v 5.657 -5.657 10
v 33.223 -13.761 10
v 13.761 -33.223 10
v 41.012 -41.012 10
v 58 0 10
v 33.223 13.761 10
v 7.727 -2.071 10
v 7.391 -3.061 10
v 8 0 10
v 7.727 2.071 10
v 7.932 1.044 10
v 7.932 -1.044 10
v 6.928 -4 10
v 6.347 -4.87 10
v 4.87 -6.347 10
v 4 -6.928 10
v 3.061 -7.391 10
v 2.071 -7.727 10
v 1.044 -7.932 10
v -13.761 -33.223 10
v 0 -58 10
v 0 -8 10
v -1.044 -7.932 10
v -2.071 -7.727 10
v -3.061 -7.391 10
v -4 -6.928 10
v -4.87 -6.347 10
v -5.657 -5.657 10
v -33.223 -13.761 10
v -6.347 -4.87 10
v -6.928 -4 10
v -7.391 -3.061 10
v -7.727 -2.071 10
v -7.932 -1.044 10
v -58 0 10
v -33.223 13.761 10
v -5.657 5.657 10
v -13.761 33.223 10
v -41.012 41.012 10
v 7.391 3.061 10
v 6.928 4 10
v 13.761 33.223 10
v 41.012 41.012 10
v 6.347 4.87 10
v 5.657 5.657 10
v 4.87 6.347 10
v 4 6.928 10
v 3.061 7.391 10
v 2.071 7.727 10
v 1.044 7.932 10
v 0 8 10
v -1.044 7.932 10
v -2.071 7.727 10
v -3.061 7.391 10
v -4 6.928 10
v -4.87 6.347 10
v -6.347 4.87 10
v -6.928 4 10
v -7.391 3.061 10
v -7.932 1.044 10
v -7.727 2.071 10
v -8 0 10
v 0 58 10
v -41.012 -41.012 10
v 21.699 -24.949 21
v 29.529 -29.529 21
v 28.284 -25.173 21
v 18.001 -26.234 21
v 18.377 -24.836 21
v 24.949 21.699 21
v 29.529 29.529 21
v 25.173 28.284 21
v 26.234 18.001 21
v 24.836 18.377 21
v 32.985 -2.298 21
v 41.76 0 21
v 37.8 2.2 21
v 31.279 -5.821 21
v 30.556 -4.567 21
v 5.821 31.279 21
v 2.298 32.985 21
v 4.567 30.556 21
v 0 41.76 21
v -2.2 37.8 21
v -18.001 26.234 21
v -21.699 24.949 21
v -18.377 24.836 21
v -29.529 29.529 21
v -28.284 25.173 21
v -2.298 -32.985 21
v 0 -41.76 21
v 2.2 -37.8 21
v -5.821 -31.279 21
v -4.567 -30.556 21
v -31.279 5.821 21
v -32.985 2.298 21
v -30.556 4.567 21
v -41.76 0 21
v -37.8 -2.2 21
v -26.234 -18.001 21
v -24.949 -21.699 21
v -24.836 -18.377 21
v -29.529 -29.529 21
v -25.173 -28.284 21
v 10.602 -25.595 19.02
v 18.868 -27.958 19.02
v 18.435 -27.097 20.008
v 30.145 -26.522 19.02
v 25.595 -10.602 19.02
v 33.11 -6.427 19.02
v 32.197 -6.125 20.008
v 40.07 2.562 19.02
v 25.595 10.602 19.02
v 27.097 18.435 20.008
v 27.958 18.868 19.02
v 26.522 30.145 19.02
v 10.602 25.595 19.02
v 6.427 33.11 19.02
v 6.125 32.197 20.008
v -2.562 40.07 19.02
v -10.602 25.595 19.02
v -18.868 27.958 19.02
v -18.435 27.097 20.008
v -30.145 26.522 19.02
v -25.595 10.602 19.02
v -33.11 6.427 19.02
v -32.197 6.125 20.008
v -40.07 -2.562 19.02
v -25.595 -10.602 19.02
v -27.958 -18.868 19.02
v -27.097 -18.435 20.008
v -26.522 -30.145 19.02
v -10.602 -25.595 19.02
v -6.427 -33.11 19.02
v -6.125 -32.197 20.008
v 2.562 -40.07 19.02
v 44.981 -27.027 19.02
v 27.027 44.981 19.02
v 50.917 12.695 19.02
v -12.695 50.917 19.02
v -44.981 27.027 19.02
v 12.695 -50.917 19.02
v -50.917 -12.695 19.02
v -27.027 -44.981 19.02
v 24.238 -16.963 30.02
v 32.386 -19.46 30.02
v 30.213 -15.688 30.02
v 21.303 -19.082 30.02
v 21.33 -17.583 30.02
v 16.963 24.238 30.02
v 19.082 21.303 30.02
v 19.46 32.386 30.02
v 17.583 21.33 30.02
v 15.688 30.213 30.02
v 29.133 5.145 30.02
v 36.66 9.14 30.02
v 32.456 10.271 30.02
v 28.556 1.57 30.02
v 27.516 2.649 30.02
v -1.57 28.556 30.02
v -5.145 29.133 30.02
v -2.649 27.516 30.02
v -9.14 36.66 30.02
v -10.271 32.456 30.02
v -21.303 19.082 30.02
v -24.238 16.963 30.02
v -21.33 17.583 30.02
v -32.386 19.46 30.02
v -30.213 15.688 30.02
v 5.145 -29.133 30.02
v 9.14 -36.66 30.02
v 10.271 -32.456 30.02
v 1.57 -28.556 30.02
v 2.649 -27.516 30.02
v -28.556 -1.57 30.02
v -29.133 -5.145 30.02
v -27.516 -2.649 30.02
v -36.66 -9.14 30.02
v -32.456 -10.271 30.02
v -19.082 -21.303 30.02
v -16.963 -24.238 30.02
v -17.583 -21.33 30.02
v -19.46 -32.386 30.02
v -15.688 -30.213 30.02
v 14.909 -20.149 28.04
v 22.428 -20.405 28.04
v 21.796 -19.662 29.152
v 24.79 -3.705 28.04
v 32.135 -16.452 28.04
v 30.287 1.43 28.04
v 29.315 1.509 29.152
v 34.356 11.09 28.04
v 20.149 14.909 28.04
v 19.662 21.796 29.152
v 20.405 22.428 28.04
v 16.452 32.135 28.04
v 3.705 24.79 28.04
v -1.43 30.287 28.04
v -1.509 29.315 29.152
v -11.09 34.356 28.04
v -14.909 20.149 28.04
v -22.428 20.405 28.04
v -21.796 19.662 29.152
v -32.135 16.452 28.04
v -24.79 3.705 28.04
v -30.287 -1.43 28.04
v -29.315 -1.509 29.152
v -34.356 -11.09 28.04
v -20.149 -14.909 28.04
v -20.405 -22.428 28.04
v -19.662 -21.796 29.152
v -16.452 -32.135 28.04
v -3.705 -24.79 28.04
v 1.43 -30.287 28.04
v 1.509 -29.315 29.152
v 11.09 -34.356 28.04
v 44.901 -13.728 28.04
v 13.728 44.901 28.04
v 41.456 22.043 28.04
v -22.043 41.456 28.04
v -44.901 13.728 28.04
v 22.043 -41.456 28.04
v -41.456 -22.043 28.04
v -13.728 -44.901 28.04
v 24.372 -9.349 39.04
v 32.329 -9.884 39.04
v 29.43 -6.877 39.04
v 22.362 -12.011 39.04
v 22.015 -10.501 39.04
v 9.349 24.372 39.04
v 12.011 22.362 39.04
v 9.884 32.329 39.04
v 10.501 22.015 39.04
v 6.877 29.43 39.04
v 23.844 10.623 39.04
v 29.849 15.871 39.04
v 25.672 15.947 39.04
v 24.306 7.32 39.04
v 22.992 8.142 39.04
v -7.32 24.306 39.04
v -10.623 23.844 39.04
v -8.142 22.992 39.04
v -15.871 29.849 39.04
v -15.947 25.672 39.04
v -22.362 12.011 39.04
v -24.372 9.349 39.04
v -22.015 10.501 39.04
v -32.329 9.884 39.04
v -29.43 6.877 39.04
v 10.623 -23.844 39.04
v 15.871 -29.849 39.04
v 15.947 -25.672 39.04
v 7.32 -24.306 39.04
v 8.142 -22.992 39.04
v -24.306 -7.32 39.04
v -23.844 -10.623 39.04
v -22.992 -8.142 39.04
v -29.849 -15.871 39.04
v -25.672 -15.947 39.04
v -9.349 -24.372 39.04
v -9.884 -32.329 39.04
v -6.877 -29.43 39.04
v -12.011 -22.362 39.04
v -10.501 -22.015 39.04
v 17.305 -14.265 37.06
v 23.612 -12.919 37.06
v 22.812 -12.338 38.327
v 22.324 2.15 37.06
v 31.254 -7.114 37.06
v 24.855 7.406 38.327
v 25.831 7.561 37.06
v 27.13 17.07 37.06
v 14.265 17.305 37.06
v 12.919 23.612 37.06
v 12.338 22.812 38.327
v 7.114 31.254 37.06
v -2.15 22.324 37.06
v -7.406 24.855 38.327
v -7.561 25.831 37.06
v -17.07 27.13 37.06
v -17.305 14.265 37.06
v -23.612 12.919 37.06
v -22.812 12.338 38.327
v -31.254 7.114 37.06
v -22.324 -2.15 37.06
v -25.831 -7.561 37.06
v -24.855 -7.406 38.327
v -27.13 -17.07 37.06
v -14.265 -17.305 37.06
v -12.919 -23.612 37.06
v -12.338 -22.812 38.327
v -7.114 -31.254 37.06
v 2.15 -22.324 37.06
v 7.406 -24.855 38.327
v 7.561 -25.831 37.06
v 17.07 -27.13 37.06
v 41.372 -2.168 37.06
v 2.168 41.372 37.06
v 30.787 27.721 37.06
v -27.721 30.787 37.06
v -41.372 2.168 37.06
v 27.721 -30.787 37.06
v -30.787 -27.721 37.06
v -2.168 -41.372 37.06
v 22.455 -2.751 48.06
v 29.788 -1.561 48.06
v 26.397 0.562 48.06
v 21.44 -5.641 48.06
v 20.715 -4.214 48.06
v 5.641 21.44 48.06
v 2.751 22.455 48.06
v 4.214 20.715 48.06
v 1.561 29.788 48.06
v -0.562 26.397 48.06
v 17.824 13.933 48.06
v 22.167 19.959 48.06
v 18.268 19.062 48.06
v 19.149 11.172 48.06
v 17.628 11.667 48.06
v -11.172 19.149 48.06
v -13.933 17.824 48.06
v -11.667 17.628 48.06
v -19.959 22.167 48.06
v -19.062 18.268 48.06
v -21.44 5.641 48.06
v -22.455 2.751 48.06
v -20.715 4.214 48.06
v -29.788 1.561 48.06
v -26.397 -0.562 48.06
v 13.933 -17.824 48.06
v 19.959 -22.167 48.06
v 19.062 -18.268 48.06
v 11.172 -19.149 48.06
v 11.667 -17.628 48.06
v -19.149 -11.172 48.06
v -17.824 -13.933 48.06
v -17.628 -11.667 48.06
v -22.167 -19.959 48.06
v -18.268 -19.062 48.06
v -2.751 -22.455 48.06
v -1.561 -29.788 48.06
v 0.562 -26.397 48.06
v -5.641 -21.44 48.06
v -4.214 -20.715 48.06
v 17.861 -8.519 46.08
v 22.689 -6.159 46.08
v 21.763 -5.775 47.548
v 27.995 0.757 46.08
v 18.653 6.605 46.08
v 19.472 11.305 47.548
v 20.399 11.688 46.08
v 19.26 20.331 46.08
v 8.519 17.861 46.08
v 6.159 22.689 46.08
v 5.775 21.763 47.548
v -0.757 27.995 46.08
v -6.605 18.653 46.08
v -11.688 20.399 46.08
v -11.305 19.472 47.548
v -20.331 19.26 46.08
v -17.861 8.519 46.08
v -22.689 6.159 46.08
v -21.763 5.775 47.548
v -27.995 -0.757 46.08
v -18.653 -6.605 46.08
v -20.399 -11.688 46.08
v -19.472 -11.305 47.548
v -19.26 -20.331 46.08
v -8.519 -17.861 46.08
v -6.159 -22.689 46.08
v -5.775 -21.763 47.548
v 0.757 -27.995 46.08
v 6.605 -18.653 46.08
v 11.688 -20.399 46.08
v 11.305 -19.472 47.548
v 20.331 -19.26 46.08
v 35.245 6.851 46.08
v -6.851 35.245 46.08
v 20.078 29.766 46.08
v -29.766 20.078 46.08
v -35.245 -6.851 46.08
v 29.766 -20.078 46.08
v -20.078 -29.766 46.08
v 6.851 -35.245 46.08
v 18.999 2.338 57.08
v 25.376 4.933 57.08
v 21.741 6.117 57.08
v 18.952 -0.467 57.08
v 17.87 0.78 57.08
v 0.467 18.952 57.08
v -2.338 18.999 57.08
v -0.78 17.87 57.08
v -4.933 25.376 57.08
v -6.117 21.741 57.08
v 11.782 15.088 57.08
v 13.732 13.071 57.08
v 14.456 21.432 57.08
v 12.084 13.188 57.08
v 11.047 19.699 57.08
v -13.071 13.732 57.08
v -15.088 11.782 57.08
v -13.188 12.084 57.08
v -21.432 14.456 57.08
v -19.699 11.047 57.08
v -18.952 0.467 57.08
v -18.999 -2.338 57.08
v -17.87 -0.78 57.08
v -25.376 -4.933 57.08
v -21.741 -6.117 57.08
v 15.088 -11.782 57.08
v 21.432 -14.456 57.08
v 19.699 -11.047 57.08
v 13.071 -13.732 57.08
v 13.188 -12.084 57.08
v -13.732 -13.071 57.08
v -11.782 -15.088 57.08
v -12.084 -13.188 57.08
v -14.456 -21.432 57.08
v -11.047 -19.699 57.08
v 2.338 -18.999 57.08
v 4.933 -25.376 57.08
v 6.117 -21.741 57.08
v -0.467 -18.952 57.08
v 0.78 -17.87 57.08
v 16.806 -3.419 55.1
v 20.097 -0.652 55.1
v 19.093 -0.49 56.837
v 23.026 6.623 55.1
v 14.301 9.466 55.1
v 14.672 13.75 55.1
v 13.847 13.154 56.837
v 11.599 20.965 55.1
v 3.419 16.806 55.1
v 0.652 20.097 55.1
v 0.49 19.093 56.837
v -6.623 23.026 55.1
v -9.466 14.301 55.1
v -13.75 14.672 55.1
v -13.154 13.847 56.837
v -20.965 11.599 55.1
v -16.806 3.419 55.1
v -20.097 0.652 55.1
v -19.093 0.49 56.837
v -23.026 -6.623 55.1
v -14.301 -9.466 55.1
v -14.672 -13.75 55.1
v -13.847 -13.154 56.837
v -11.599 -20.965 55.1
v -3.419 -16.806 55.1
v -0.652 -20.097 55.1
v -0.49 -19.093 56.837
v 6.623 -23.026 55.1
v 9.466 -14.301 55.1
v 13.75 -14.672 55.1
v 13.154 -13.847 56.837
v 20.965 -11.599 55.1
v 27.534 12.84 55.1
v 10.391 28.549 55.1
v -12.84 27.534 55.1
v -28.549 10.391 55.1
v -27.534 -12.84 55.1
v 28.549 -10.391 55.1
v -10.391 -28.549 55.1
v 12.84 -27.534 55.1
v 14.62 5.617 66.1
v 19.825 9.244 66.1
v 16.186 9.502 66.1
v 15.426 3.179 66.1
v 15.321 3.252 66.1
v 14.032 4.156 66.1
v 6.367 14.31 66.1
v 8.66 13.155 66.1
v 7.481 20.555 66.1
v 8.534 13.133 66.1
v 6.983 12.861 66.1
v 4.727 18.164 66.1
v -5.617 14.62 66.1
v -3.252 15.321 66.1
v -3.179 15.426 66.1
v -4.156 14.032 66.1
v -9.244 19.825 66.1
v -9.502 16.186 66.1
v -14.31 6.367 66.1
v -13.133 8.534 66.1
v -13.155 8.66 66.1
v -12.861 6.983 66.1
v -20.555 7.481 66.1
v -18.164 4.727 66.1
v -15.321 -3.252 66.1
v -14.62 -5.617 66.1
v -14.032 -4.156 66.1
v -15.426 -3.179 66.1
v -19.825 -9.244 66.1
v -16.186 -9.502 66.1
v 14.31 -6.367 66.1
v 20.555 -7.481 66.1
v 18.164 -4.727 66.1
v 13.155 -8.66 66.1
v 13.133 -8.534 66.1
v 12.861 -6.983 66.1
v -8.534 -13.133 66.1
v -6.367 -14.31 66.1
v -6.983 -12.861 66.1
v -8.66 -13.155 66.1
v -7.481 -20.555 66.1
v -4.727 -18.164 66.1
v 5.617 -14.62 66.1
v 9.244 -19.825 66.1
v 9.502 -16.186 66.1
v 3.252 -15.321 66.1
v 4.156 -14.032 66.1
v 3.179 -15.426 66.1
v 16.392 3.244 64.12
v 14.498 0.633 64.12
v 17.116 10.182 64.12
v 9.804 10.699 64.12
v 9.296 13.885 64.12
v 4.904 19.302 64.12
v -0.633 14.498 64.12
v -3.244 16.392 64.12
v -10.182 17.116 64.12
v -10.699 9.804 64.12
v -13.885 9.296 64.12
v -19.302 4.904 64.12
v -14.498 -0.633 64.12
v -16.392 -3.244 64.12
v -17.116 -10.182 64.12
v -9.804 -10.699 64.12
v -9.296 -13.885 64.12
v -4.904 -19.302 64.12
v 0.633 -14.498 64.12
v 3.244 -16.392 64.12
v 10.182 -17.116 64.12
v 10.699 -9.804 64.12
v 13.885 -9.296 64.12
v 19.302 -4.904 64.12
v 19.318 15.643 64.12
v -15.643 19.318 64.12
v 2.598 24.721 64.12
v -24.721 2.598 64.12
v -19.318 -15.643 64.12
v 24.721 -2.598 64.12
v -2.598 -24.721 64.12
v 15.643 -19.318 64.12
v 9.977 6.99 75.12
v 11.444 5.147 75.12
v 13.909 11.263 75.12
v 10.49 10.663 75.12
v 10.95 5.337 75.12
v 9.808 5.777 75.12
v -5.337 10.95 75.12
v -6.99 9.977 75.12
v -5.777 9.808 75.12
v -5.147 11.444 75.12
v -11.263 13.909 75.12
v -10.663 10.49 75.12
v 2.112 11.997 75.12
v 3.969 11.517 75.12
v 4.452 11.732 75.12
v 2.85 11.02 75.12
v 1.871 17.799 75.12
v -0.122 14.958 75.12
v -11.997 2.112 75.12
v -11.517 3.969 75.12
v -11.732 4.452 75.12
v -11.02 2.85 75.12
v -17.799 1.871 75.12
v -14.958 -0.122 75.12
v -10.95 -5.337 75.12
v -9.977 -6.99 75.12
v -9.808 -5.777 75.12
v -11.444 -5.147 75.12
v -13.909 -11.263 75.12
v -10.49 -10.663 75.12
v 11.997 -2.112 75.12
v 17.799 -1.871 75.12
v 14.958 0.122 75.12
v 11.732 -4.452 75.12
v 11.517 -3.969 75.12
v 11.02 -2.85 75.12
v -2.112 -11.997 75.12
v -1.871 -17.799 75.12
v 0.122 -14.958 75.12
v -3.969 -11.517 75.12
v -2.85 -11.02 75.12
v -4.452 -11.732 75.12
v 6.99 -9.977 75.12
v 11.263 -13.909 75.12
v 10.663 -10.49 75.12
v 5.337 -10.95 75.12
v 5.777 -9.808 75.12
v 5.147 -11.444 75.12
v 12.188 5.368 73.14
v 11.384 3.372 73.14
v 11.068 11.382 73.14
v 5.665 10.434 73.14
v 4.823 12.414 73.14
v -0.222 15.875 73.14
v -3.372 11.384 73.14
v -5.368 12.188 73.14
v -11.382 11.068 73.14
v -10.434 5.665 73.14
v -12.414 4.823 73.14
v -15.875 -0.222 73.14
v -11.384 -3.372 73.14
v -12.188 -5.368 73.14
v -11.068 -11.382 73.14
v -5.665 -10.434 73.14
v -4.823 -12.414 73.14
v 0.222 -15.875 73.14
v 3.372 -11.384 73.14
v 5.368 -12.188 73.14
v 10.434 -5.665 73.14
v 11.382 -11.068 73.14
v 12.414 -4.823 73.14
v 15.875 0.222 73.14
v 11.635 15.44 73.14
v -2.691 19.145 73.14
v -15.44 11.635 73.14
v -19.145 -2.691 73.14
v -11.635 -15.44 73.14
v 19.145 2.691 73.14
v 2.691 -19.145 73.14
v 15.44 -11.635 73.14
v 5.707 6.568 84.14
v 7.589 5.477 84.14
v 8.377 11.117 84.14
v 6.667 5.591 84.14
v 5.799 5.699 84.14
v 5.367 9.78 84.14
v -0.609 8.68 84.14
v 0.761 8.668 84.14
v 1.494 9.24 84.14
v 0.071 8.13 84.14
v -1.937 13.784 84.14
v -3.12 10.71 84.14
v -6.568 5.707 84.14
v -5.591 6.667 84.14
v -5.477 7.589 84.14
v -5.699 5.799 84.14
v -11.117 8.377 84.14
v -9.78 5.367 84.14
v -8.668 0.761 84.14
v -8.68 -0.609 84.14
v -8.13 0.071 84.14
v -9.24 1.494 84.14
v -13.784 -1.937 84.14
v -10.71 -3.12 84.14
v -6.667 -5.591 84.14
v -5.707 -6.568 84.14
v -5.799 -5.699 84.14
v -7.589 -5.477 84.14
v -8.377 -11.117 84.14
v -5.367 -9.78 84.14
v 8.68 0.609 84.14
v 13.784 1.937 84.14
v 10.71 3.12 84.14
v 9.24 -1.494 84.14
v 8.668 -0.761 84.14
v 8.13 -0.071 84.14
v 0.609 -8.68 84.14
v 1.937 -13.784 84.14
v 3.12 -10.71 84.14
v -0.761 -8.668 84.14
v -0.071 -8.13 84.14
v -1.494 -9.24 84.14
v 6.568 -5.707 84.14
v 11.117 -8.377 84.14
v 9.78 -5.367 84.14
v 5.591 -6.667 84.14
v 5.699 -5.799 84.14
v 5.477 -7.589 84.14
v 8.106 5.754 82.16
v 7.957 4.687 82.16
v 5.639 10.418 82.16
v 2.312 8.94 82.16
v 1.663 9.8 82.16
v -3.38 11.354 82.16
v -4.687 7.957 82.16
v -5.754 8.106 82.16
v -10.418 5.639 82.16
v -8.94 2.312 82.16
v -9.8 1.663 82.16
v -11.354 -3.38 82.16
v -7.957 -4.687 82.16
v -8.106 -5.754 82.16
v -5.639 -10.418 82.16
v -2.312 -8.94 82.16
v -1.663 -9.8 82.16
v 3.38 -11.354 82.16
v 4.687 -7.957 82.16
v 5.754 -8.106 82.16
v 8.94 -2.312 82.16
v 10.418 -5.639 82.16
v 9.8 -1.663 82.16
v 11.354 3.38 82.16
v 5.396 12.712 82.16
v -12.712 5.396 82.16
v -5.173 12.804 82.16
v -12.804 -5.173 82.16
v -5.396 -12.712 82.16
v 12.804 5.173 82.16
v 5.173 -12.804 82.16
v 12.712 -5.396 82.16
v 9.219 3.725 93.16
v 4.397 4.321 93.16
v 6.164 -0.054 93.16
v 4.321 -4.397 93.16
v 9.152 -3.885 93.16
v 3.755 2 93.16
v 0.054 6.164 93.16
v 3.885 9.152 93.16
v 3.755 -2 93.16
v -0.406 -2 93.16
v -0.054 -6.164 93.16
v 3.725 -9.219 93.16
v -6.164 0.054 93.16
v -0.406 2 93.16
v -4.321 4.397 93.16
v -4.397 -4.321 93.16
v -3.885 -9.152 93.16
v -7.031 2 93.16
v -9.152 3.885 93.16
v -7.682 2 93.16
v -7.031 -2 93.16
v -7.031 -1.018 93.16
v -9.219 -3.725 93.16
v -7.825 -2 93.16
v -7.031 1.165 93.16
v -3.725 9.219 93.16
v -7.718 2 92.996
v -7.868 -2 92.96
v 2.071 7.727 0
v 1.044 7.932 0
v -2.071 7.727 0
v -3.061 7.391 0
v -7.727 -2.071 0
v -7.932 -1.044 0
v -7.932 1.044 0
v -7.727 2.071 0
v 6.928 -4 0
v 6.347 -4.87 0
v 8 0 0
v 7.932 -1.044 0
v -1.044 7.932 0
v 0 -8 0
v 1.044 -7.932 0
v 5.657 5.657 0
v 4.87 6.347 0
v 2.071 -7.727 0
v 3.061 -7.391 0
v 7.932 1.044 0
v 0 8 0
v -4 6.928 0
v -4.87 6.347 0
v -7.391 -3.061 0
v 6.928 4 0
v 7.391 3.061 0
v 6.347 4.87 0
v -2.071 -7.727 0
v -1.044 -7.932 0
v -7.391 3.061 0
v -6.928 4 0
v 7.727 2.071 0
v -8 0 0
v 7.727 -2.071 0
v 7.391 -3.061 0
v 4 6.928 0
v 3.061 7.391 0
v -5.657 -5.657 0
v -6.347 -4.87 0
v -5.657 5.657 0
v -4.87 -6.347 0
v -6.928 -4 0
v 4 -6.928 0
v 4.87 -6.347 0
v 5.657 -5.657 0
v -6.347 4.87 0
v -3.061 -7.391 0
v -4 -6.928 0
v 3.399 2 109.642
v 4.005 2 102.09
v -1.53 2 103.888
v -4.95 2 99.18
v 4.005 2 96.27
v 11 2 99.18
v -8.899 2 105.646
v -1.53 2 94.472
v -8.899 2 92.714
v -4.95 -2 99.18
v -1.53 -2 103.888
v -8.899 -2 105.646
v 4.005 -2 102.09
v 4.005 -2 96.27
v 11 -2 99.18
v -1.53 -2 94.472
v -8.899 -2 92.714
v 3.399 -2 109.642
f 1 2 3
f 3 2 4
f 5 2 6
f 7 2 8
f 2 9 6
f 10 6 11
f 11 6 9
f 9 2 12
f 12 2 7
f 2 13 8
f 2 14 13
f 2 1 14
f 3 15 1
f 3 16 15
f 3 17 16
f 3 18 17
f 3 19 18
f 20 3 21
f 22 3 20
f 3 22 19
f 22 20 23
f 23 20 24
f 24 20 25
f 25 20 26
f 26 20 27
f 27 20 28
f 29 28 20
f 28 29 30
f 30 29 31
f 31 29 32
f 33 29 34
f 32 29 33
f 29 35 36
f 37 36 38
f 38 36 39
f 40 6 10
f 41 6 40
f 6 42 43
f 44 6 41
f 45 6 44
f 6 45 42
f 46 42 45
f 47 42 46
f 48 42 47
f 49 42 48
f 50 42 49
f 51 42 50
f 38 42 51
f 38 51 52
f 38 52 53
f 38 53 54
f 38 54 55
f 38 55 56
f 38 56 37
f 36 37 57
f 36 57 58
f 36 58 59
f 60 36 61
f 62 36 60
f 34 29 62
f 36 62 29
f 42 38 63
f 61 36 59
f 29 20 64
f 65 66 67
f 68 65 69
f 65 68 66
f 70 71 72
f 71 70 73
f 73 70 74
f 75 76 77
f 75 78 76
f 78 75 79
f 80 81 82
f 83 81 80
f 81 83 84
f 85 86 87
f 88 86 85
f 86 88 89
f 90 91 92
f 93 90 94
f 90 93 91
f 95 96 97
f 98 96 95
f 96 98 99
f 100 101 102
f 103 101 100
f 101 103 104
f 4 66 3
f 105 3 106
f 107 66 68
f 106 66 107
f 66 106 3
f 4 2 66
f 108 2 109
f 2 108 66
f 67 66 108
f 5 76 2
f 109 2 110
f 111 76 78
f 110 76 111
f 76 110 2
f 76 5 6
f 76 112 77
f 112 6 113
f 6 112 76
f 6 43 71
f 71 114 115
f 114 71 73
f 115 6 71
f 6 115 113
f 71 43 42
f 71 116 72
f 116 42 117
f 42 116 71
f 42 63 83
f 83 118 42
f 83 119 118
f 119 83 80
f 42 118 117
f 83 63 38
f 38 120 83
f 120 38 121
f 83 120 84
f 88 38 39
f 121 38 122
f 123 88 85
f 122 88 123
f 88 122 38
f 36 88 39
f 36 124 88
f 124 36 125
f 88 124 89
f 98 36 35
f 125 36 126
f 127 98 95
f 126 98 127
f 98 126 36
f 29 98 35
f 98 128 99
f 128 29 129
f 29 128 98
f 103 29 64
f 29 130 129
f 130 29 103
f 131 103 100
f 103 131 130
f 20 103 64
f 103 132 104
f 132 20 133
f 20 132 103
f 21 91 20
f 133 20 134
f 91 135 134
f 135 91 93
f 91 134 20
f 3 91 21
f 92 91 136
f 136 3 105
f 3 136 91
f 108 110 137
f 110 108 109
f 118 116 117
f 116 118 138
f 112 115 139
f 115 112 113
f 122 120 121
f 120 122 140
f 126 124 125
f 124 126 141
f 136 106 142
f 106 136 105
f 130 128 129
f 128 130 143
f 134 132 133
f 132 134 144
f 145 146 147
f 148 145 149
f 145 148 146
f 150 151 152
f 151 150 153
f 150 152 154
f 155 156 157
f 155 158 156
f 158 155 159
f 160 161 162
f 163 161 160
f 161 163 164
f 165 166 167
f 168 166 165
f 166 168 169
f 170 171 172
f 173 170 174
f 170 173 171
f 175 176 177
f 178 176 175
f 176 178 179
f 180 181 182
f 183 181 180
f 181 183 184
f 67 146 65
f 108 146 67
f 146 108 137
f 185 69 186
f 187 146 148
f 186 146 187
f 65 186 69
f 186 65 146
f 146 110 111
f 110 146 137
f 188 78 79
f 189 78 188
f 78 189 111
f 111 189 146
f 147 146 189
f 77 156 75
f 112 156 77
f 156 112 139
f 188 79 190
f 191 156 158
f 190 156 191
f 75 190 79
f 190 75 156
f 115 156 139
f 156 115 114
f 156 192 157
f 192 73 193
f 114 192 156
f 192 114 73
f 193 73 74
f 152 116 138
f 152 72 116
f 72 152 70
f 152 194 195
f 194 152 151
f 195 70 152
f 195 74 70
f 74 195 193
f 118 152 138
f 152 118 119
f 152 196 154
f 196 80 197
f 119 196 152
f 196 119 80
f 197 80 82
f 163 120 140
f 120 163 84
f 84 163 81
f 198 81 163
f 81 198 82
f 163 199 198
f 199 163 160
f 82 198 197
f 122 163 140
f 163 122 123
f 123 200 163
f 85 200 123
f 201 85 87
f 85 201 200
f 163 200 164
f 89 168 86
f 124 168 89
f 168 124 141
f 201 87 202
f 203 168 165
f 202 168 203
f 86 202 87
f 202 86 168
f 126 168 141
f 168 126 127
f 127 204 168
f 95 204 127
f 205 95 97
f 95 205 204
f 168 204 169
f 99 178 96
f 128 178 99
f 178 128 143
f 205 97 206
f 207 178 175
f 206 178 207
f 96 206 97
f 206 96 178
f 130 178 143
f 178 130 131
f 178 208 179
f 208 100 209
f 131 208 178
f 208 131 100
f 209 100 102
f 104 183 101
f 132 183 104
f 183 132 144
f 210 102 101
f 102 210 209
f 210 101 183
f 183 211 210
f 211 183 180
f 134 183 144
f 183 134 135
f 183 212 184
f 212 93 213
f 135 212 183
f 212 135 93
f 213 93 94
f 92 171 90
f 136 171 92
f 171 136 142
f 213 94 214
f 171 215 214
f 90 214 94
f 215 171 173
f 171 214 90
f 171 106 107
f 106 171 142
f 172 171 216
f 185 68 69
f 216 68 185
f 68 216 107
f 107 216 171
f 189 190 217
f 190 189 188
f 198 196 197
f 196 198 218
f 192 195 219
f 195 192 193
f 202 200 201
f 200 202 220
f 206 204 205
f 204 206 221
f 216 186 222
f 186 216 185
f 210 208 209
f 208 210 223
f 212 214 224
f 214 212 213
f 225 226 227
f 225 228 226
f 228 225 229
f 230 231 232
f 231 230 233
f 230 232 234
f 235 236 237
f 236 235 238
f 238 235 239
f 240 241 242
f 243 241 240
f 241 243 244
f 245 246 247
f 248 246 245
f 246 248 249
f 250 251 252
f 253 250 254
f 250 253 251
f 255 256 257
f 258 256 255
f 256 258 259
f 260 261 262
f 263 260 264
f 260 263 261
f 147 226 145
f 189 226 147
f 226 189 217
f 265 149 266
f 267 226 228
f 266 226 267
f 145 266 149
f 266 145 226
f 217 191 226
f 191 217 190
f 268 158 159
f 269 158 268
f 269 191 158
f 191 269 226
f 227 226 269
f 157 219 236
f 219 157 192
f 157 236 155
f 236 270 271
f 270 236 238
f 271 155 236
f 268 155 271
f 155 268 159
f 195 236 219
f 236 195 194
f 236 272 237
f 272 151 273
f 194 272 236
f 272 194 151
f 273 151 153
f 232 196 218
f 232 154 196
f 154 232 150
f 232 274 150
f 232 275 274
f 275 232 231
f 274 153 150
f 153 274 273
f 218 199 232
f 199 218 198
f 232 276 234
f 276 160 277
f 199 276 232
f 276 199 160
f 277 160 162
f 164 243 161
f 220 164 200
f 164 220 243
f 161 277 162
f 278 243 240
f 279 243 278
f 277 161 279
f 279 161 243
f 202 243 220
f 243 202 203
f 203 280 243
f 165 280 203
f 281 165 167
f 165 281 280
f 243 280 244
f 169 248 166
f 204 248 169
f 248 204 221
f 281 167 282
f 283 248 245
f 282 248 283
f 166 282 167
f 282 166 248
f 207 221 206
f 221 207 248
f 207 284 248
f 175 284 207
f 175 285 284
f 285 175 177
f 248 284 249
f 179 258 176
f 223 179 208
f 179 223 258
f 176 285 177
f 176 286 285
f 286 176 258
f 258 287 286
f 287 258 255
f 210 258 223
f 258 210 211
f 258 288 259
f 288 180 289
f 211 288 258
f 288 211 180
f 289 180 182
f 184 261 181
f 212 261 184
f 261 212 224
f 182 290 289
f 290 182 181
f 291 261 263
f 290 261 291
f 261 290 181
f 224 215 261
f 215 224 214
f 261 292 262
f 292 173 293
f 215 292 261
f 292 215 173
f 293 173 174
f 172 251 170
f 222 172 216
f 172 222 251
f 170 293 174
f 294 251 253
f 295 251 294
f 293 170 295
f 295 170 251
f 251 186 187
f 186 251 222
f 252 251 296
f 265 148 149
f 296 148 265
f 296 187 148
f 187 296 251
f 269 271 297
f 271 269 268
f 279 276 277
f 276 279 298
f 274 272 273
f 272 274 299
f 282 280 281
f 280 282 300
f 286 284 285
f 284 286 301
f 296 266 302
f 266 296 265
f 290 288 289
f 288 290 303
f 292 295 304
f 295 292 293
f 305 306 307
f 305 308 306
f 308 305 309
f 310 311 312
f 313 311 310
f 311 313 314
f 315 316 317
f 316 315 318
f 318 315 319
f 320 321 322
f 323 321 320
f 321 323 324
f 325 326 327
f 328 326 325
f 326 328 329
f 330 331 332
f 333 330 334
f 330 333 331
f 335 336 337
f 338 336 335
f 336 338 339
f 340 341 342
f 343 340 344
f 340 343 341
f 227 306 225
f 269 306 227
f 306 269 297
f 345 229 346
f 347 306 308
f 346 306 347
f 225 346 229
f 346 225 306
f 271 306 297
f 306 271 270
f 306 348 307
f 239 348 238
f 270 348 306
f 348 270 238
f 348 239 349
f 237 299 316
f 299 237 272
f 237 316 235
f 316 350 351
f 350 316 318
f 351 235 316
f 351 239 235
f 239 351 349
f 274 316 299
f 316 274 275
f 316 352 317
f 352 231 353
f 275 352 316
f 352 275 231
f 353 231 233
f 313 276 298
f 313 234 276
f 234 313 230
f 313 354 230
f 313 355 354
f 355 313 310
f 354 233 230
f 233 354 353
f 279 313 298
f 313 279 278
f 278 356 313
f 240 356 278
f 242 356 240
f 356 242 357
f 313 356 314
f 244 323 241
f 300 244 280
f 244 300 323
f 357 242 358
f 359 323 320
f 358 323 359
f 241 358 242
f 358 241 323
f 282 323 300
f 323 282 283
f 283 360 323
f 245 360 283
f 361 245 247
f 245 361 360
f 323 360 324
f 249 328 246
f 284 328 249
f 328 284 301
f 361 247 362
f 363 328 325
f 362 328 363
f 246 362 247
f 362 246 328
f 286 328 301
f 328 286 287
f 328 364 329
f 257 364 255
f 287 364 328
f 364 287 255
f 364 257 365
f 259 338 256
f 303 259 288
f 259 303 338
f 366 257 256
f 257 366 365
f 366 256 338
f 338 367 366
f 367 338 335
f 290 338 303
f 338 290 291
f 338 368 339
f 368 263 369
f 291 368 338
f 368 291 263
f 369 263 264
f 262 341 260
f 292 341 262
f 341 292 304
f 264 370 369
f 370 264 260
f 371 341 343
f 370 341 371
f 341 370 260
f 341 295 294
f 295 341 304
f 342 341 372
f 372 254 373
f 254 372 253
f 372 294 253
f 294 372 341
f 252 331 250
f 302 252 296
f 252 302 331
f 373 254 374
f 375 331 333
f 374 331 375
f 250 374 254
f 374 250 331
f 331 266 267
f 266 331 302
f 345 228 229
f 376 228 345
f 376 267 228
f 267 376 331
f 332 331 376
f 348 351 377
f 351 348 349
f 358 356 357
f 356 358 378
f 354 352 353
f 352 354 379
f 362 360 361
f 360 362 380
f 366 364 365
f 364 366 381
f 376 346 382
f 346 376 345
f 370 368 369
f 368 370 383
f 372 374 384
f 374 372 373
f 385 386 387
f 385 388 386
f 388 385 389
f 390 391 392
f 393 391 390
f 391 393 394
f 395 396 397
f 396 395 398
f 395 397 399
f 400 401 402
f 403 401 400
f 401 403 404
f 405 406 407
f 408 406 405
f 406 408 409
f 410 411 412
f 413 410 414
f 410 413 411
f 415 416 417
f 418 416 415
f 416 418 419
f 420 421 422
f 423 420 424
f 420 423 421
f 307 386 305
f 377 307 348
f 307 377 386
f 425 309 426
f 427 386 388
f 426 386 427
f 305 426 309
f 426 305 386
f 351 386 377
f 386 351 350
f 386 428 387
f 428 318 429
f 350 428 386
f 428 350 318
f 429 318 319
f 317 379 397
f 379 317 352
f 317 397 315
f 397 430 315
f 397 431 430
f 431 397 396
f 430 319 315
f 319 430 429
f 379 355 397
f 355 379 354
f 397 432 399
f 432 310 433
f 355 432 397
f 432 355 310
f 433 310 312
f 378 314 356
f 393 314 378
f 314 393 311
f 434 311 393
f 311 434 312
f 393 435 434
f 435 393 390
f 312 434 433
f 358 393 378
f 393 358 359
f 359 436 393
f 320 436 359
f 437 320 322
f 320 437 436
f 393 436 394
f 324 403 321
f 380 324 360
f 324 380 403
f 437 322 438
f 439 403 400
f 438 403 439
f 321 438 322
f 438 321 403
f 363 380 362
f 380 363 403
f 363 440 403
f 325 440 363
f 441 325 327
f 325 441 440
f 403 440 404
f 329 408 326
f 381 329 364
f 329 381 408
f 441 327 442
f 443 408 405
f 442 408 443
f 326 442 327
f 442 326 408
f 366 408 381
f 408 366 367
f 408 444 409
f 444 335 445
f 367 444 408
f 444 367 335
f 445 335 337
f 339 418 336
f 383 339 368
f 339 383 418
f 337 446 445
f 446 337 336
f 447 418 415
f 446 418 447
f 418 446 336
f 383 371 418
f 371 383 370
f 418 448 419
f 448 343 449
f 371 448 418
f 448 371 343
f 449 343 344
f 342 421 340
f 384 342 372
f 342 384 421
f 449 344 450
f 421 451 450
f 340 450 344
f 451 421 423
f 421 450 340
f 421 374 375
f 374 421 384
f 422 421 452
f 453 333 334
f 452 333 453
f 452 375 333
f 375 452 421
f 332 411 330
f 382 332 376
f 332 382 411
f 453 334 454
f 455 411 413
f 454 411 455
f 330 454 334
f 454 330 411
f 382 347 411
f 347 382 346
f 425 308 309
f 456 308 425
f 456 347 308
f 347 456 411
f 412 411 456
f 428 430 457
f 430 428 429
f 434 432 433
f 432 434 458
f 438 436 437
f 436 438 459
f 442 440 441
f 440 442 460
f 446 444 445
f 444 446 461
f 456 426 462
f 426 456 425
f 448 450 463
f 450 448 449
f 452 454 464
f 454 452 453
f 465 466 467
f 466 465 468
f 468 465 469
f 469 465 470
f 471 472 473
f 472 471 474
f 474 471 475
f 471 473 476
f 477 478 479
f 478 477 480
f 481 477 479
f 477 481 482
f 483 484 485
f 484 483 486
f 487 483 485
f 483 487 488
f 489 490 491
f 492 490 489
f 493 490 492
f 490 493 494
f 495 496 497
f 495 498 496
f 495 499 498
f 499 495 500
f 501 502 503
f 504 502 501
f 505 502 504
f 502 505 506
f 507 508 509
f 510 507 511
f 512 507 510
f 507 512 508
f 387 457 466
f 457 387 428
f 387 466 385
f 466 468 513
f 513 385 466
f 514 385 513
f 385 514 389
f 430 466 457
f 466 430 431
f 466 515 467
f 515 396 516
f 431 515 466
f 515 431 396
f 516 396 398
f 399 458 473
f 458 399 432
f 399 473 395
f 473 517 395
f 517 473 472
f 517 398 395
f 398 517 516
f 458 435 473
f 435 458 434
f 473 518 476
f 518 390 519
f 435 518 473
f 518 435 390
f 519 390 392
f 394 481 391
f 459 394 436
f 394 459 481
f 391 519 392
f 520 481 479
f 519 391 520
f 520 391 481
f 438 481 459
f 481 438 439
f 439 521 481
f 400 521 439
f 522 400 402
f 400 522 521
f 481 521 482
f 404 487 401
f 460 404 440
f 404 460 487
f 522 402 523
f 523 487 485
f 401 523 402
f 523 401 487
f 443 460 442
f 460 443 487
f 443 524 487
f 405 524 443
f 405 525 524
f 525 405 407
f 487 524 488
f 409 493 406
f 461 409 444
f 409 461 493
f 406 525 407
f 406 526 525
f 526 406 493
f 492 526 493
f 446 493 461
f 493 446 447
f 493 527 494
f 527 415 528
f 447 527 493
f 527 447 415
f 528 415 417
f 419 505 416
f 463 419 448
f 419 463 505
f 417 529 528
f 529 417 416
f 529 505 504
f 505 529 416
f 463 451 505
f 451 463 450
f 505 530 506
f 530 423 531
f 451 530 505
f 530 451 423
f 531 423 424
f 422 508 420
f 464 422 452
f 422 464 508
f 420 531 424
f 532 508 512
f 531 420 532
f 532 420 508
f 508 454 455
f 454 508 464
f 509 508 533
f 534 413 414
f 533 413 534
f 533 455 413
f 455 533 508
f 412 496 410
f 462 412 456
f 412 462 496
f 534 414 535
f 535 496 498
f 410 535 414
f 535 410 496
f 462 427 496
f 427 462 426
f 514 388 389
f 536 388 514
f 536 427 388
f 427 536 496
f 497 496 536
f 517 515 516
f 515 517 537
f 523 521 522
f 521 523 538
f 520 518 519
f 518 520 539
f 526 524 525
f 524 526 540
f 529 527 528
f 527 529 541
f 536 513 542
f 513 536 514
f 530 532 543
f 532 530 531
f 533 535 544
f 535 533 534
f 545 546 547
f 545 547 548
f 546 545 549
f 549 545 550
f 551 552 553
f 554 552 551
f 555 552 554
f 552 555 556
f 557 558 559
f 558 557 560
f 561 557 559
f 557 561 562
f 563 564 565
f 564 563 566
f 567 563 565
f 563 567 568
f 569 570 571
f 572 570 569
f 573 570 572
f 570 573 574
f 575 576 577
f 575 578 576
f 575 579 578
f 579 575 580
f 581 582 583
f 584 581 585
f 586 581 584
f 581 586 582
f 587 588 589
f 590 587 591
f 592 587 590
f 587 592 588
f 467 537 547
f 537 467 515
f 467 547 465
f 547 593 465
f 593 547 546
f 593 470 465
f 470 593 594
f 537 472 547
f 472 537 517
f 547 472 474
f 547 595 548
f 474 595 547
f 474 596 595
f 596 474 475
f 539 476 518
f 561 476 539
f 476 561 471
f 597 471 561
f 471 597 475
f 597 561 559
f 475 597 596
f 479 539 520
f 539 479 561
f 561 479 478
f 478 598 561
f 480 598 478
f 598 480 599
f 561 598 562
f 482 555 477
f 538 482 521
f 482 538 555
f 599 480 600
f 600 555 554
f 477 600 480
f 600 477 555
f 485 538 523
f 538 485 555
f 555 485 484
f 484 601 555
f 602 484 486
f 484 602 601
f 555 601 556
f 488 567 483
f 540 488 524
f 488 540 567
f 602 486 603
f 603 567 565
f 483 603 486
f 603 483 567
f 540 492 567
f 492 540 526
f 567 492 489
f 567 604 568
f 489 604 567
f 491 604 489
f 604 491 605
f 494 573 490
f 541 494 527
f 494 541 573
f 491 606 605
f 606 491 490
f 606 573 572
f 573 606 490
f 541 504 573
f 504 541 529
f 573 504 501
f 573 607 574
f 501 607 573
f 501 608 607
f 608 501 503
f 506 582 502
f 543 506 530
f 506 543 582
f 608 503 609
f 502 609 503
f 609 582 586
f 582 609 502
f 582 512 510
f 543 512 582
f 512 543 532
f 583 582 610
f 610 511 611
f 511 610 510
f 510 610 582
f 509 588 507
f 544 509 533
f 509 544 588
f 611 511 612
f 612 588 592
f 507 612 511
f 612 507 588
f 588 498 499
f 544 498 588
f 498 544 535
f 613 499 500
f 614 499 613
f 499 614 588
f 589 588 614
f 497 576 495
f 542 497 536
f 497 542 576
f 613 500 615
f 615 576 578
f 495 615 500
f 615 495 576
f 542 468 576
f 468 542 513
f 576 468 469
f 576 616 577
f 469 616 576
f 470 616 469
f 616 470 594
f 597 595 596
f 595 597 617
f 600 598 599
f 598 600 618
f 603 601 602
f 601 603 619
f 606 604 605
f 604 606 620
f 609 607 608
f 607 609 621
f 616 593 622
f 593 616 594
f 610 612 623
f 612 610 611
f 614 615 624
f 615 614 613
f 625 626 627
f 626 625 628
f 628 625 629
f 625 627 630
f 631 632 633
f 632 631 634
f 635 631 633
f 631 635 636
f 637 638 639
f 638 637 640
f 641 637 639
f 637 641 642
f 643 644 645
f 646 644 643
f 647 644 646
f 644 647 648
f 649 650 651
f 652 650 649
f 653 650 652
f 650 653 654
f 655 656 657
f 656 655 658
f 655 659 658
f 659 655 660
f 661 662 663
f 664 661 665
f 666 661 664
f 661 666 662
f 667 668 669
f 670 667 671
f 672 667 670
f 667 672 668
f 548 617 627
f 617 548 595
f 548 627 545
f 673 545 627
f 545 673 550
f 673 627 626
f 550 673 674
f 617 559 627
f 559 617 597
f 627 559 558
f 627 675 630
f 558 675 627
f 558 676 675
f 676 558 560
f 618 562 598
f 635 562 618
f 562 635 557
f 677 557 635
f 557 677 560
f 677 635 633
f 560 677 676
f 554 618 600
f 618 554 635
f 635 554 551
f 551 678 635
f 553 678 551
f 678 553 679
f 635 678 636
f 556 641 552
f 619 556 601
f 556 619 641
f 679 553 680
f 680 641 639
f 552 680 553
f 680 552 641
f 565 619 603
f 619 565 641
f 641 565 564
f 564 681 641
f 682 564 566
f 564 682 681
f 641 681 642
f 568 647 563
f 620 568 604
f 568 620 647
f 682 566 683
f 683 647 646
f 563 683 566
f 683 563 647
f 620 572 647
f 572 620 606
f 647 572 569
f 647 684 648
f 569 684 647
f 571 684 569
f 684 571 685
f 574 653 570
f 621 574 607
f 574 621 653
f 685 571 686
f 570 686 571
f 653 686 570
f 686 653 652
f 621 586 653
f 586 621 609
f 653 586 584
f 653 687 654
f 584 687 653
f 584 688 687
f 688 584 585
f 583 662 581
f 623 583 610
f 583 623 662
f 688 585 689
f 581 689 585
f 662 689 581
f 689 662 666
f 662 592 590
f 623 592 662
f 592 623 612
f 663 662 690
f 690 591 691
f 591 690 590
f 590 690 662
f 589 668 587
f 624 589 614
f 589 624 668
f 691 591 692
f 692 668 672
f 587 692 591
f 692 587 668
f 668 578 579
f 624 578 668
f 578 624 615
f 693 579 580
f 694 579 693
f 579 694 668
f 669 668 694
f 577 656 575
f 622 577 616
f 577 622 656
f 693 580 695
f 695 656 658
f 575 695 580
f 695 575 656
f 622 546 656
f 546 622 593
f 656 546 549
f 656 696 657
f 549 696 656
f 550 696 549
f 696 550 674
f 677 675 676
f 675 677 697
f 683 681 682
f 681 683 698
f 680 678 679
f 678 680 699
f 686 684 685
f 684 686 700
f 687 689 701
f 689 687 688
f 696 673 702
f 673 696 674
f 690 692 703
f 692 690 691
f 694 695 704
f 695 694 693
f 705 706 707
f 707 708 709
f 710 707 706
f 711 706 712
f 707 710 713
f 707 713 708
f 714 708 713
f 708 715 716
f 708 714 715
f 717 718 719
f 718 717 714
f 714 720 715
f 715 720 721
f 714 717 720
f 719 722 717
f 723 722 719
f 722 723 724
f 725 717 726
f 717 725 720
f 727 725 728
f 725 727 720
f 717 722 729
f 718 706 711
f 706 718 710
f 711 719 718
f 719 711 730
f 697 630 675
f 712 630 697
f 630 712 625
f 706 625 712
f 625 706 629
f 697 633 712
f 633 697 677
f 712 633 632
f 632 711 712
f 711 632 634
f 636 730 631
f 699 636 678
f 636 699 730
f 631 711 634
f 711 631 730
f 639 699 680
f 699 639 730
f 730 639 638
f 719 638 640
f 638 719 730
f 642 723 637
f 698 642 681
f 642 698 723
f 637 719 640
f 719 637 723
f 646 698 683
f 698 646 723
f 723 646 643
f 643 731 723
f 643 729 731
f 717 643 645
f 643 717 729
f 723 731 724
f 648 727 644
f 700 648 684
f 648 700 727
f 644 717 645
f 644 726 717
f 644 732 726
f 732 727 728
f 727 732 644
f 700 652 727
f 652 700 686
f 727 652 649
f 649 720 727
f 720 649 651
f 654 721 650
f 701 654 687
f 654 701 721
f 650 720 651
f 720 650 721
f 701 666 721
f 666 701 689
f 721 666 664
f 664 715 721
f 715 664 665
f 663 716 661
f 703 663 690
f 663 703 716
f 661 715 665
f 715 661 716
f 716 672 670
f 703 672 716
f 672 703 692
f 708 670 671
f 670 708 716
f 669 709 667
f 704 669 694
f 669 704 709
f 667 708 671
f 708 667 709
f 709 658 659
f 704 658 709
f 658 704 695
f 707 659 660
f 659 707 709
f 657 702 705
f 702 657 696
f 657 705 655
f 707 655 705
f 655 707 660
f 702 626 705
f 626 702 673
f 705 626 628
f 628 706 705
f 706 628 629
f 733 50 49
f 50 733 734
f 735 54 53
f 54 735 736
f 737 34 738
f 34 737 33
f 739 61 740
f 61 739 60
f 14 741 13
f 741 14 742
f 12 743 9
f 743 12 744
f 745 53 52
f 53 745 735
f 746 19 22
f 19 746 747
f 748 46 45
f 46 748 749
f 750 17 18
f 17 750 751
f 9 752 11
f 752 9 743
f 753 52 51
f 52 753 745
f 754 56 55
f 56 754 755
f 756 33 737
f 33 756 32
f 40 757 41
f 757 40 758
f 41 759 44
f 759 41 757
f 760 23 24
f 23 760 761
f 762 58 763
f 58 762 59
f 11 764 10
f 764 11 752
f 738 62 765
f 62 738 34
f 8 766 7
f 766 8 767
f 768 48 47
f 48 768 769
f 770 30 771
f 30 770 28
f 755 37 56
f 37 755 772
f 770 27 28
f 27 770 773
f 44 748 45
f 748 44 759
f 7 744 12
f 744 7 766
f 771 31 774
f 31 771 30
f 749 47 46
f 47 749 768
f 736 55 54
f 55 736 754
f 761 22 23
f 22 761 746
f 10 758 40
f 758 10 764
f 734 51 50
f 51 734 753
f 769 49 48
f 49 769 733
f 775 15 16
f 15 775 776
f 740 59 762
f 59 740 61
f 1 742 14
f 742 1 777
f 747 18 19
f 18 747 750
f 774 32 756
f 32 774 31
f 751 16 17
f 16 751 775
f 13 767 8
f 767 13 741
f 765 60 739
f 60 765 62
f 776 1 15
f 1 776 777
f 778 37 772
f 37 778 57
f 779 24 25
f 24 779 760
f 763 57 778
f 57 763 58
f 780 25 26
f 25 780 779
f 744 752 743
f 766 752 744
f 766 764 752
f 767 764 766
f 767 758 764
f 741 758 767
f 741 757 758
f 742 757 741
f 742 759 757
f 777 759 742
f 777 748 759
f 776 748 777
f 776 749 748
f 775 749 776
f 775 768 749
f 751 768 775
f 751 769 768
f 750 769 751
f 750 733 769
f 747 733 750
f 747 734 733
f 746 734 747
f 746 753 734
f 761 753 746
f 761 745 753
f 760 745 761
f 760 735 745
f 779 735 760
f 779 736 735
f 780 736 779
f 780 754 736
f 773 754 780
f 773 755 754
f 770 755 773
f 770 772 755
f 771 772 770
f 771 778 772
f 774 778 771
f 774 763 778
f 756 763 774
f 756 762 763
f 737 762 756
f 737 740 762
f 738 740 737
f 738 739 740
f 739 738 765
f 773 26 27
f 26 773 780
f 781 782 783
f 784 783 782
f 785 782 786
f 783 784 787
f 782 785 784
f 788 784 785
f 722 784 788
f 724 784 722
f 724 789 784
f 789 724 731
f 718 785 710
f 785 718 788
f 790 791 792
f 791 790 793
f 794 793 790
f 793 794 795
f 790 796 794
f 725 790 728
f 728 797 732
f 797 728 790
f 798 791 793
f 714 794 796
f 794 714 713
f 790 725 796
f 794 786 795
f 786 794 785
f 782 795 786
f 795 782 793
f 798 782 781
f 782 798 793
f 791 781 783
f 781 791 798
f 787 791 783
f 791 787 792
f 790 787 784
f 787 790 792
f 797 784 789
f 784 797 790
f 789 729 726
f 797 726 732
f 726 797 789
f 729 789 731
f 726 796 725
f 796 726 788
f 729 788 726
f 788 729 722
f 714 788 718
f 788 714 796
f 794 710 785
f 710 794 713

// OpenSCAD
// Impronta 3D — Arbolito de mesa en capas (diseño propio)
// Árbol de Navidad de capas estrelladas que van girando y achicándose hacia arriba, con estrella en la punta.
// Centro de mesa o adorno de escritorio. Se imprime parado, sin soportes (cada capa es más chica que la de abajo).

capas     = 9;
base_r    = 58;
alto_capa = 11;
puntas    = 8;
giro      = 14;     // grados que gira cada capa
tronco    = [16, 10];
$fn = 48;

function estrella(r, k, n) = [for (i = [0 : 2 * n - 1]) let(a = i * 180 / n, rr = (i % 2 == 0) ? r : r * k) [rr * cos(a), rr * sin(a)]];

union() {
    cylinder(d = tronco[0], h = tronco[1]);   // tronco
    for (i = [0 : capas - 1]) {
        r = base_r * (1 - i / (capas + 1.5));
        translate([0, 0, tronco[1] + i * alto_capa * 0.82]) rotate(i * giro)
            linear_extrude(alto_capa, scale = 0.72) polygon(estrella(r, 0.62, puntas));
    }
    // estrella en la punta (parada)
    translate([0, 0, tronco[1] + capas * alto_capa * 0.82 + 8]) rotate([90, 0, 0])
        linear_extrude(4, center = true) polygon(estrella(11, 0.45, 5));
}
